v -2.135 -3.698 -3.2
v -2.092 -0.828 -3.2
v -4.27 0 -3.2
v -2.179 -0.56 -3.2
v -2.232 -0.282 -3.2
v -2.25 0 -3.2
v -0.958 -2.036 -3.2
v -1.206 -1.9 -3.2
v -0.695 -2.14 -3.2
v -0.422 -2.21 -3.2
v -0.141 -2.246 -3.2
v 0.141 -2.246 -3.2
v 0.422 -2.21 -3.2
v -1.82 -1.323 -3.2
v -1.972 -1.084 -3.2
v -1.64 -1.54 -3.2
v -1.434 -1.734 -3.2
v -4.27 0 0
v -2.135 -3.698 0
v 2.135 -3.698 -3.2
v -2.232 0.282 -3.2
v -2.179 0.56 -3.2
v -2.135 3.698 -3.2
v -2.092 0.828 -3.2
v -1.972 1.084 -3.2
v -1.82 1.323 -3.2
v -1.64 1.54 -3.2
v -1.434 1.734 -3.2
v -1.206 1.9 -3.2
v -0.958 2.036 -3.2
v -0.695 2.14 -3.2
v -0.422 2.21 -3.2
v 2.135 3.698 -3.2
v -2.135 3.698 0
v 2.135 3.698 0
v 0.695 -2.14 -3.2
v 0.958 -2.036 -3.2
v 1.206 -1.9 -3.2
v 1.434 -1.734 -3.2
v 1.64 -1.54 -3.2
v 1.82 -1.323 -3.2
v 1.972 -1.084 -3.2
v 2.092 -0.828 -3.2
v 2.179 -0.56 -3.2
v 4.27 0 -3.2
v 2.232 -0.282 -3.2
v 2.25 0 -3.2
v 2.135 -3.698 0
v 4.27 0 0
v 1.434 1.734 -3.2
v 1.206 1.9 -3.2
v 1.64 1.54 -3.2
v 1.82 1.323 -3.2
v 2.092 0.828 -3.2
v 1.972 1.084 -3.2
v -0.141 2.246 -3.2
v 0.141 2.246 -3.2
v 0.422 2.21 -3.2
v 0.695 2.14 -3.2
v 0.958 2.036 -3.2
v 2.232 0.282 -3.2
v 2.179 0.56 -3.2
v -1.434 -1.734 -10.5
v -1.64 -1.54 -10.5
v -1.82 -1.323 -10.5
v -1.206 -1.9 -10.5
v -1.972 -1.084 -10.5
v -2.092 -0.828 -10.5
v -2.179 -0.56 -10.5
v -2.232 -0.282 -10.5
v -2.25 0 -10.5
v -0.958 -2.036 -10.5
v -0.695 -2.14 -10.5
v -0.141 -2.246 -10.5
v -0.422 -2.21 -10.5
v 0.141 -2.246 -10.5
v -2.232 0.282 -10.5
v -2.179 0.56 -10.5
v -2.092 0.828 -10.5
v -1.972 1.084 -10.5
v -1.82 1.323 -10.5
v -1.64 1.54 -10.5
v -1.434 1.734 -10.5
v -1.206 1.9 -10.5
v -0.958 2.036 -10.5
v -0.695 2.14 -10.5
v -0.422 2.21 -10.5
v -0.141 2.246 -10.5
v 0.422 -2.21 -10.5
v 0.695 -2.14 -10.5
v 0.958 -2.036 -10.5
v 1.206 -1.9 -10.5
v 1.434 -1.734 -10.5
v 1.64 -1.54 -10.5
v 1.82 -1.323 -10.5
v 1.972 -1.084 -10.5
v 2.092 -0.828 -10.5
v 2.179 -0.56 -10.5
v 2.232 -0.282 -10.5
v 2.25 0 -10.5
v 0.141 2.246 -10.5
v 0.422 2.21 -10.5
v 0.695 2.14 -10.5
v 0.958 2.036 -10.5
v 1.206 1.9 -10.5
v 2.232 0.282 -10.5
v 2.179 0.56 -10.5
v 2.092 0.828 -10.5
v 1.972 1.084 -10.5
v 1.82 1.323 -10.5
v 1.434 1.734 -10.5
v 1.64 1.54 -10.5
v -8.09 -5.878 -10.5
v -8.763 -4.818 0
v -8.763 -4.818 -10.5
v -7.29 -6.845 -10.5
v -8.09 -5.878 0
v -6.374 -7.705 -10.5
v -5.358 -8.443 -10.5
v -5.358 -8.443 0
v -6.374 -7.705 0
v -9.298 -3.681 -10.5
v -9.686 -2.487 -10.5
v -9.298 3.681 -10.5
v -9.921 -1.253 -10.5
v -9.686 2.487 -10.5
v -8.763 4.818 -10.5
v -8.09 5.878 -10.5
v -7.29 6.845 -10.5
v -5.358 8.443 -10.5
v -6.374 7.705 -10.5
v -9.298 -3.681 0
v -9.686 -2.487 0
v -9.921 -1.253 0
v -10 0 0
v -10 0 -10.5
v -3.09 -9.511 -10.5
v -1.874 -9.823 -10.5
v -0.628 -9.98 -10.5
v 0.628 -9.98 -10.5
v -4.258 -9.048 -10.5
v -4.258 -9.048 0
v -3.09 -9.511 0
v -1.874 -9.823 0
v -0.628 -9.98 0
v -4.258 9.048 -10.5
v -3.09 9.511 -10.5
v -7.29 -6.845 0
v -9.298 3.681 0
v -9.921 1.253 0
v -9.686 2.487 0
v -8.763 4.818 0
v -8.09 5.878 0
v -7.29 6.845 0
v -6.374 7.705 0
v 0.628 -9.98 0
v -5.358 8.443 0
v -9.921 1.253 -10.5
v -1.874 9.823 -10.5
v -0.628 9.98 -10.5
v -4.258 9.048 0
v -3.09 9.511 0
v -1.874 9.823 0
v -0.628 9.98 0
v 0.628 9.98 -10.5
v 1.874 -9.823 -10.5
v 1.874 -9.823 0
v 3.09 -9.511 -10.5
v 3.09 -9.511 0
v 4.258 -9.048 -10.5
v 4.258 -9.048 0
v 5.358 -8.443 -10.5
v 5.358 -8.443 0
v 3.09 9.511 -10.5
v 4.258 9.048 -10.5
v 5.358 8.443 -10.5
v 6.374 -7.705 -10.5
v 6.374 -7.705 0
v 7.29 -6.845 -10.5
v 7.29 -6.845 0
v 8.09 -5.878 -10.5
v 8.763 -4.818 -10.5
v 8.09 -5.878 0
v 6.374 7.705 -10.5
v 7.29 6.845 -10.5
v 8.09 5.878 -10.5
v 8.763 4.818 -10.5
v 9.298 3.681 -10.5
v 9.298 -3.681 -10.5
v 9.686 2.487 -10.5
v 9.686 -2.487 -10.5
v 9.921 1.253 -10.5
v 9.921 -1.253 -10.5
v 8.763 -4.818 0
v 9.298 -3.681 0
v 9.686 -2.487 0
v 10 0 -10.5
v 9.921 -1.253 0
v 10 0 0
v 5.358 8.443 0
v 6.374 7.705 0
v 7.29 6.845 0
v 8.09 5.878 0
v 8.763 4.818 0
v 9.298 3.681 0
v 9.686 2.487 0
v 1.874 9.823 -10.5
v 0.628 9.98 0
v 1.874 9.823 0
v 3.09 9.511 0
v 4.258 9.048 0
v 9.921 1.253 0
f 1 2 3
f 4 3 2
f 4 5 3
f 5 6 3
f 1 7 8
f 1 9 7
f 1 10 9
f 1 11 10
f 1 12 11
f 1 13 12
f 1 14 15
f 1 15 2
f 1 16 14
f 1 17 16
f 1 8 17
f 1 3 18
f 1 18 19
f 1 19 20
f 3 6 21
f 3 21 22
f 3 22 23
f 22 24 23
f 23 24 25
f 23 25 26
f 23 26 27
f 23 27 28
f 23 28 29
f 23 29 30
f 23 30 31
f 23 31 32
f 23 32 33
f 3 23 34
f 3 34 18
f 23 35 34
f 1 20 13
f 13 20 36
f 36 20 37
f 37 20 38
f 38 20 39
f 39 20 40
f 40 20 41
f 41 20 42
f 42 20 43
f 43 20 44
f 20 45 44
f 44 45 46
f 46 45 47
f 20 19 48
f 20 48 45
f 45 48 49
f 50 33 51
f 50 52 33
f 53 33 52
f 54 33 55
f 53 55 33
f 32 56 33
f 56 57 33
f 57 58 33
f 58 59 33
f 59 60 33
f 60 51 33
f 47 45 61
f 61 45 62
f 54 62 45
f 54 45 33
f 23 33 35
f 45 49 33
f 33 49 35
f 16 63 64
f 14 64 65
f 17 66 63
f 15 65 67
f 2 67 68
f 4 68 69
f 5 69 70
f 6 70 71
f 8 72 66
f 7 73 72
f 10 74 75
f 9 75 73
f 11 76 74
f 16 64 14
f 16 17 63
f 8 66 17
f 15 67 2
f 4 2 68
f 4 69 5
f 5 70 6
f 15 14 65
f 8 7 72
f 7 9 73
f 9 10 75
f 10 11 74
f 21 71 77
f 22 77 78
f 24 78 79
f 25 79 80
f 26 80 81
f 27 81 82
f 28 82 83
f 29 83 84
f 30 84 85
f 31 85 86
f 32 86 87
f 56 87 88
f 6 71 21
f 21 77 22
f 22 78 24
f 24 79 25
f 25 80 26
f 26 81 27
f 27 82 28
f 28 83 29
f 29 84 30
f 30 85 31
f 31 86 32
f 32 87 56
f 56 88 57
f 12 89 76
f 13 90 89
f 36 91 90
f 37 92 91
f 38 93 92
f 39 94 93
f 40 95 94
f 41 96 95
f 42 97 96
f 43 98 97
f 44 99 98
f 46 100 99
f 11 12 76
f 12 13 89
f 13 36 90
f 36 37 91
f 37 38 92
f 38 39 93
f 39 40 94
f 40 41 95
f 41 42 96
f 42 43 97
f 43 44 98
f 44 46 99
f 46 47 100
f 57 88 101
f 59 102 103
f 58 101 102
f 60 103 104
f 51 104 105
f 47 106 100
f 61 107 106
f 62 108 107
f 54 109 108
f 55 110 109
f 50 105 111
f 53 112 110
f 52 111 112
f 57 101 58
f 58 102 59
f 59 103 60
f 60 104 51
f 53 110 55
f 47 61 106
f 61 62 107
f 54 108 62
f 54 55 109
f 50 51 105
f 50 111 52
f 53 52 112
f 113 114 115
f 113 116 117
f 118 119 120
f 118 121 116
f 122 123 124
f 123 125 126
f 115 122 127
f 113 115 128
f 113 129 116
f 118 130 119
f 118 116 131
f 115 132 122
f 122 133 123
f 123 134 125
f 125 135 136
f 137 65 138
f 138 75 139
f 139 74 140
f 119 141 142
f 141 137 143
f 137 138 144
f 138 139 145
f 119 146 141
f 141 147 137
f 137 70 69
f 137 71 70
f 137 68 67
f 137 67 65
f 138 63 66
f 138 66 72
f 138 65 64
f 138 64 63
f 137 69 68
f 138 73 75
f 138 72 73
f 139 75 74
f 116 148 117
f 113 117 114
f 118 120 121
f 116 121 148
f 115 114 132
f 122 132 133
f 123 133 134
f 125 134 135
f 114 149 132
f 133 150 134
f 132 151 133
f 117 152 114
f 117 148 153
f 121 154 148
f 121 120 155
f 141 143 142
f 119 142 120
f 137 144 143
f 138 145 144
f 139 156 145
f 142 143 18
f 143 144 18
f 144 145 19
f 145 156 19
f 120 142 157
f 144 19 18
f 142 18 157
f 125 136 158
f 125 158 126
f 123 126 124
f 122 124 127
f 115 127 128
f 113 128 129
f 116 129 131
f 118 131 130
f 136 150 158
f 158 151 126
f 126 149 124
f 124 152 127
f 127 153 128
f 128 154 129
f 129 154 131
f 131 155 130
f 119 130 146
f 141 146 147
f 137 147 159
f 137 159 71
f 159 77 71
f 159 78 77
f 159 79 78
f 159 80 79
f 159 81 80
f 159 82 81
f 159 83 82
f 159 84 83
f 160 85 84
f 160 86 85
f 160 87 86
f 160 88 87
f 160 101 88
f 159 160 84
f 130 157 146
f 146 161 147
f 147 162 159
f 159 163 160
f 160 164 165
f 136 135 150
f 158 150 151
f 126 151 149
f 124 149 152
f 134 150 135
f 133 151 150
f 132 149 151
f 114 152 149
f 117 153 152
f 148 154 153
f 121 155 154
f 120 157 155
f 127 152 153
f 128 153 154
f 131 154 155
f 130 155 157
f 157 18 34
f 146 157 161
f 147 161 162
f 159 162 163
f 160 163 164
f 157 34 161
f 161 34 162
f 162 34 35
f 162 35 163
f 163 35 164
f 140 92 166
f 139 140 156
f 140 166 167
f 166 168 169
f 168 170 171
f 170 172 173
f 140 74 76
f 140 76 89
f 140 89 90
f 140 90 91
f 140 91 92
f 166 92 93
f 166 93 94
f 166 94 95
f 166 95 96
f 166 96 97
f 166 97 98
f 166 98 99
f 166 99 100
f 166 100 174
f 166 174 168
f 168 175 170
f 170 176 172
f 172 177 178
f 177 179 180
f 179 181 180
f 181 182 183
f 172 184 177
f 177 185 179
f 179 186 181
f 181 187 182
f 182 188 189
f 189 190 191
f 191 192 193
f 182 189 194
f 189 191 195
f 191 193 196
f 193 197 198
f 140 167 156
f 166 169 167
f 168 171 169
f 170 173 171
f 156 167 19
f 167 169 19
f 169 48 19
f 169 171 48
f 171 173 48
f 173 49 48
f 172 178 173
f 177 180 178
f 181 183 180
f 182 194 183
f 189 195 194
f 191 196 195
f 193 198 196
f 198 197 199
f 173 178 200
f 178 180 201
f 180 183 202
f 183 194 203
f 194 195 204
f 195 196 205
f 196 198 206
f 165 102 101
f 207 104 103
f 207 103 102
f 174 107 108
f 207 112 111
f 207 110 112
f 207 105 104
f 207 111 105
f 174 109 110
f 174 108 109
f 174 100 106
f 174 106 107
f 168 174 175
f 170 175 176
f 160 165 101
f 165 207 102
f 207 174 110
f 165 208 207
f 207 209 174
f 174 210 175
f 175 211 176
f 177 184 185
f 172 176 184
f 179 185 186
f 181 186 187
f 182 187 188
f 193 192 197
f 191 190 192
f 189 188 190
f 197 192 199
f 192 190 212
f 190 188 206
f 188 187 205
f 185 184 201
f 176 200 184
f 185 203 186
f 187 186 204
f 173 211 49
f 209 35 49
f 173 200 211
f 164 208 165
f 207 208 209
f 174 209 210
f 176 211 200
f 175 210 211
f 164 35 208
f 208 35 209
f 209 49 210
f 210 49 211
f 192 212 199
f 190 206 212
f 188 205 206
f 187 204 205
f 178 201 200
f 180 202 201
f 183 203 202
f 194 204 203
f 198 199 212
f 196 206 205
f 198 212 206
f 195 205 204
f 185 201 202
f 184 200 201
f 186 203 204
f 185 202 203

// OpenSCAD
$fn = 50;

difference() {
	union() {
		translate(v = [0, 0, -10.5]) {
			cylinder(h = 10.5, r = 10.0);
		}
	}
	union() {
		translate(v = [0, 0, 0]) {
			rotate(a = [0, 0, 0]) {
				difference() {
					union() {
						translate(v = [0, 0, -3.2]) {
							linear_extrude(height = 3.2) {
								polygon(points = [[4.2698, 0.0], [2.1349000000000005, 3.697755269078796], [-2.134899999999999, 3.6977552690787965], [-4.2698, 5.228996902999369e-16], [-2.134900000000002, -3.6977552690787956], [2.1348999999999974, -3.697755269078798]]);
							}
						}
					}
					union();
				}
			}
		}
		#translate(v = [0, 0, -100.0]) {
			cylinder(h = 200, r = 2.25);
		}
	}
}
